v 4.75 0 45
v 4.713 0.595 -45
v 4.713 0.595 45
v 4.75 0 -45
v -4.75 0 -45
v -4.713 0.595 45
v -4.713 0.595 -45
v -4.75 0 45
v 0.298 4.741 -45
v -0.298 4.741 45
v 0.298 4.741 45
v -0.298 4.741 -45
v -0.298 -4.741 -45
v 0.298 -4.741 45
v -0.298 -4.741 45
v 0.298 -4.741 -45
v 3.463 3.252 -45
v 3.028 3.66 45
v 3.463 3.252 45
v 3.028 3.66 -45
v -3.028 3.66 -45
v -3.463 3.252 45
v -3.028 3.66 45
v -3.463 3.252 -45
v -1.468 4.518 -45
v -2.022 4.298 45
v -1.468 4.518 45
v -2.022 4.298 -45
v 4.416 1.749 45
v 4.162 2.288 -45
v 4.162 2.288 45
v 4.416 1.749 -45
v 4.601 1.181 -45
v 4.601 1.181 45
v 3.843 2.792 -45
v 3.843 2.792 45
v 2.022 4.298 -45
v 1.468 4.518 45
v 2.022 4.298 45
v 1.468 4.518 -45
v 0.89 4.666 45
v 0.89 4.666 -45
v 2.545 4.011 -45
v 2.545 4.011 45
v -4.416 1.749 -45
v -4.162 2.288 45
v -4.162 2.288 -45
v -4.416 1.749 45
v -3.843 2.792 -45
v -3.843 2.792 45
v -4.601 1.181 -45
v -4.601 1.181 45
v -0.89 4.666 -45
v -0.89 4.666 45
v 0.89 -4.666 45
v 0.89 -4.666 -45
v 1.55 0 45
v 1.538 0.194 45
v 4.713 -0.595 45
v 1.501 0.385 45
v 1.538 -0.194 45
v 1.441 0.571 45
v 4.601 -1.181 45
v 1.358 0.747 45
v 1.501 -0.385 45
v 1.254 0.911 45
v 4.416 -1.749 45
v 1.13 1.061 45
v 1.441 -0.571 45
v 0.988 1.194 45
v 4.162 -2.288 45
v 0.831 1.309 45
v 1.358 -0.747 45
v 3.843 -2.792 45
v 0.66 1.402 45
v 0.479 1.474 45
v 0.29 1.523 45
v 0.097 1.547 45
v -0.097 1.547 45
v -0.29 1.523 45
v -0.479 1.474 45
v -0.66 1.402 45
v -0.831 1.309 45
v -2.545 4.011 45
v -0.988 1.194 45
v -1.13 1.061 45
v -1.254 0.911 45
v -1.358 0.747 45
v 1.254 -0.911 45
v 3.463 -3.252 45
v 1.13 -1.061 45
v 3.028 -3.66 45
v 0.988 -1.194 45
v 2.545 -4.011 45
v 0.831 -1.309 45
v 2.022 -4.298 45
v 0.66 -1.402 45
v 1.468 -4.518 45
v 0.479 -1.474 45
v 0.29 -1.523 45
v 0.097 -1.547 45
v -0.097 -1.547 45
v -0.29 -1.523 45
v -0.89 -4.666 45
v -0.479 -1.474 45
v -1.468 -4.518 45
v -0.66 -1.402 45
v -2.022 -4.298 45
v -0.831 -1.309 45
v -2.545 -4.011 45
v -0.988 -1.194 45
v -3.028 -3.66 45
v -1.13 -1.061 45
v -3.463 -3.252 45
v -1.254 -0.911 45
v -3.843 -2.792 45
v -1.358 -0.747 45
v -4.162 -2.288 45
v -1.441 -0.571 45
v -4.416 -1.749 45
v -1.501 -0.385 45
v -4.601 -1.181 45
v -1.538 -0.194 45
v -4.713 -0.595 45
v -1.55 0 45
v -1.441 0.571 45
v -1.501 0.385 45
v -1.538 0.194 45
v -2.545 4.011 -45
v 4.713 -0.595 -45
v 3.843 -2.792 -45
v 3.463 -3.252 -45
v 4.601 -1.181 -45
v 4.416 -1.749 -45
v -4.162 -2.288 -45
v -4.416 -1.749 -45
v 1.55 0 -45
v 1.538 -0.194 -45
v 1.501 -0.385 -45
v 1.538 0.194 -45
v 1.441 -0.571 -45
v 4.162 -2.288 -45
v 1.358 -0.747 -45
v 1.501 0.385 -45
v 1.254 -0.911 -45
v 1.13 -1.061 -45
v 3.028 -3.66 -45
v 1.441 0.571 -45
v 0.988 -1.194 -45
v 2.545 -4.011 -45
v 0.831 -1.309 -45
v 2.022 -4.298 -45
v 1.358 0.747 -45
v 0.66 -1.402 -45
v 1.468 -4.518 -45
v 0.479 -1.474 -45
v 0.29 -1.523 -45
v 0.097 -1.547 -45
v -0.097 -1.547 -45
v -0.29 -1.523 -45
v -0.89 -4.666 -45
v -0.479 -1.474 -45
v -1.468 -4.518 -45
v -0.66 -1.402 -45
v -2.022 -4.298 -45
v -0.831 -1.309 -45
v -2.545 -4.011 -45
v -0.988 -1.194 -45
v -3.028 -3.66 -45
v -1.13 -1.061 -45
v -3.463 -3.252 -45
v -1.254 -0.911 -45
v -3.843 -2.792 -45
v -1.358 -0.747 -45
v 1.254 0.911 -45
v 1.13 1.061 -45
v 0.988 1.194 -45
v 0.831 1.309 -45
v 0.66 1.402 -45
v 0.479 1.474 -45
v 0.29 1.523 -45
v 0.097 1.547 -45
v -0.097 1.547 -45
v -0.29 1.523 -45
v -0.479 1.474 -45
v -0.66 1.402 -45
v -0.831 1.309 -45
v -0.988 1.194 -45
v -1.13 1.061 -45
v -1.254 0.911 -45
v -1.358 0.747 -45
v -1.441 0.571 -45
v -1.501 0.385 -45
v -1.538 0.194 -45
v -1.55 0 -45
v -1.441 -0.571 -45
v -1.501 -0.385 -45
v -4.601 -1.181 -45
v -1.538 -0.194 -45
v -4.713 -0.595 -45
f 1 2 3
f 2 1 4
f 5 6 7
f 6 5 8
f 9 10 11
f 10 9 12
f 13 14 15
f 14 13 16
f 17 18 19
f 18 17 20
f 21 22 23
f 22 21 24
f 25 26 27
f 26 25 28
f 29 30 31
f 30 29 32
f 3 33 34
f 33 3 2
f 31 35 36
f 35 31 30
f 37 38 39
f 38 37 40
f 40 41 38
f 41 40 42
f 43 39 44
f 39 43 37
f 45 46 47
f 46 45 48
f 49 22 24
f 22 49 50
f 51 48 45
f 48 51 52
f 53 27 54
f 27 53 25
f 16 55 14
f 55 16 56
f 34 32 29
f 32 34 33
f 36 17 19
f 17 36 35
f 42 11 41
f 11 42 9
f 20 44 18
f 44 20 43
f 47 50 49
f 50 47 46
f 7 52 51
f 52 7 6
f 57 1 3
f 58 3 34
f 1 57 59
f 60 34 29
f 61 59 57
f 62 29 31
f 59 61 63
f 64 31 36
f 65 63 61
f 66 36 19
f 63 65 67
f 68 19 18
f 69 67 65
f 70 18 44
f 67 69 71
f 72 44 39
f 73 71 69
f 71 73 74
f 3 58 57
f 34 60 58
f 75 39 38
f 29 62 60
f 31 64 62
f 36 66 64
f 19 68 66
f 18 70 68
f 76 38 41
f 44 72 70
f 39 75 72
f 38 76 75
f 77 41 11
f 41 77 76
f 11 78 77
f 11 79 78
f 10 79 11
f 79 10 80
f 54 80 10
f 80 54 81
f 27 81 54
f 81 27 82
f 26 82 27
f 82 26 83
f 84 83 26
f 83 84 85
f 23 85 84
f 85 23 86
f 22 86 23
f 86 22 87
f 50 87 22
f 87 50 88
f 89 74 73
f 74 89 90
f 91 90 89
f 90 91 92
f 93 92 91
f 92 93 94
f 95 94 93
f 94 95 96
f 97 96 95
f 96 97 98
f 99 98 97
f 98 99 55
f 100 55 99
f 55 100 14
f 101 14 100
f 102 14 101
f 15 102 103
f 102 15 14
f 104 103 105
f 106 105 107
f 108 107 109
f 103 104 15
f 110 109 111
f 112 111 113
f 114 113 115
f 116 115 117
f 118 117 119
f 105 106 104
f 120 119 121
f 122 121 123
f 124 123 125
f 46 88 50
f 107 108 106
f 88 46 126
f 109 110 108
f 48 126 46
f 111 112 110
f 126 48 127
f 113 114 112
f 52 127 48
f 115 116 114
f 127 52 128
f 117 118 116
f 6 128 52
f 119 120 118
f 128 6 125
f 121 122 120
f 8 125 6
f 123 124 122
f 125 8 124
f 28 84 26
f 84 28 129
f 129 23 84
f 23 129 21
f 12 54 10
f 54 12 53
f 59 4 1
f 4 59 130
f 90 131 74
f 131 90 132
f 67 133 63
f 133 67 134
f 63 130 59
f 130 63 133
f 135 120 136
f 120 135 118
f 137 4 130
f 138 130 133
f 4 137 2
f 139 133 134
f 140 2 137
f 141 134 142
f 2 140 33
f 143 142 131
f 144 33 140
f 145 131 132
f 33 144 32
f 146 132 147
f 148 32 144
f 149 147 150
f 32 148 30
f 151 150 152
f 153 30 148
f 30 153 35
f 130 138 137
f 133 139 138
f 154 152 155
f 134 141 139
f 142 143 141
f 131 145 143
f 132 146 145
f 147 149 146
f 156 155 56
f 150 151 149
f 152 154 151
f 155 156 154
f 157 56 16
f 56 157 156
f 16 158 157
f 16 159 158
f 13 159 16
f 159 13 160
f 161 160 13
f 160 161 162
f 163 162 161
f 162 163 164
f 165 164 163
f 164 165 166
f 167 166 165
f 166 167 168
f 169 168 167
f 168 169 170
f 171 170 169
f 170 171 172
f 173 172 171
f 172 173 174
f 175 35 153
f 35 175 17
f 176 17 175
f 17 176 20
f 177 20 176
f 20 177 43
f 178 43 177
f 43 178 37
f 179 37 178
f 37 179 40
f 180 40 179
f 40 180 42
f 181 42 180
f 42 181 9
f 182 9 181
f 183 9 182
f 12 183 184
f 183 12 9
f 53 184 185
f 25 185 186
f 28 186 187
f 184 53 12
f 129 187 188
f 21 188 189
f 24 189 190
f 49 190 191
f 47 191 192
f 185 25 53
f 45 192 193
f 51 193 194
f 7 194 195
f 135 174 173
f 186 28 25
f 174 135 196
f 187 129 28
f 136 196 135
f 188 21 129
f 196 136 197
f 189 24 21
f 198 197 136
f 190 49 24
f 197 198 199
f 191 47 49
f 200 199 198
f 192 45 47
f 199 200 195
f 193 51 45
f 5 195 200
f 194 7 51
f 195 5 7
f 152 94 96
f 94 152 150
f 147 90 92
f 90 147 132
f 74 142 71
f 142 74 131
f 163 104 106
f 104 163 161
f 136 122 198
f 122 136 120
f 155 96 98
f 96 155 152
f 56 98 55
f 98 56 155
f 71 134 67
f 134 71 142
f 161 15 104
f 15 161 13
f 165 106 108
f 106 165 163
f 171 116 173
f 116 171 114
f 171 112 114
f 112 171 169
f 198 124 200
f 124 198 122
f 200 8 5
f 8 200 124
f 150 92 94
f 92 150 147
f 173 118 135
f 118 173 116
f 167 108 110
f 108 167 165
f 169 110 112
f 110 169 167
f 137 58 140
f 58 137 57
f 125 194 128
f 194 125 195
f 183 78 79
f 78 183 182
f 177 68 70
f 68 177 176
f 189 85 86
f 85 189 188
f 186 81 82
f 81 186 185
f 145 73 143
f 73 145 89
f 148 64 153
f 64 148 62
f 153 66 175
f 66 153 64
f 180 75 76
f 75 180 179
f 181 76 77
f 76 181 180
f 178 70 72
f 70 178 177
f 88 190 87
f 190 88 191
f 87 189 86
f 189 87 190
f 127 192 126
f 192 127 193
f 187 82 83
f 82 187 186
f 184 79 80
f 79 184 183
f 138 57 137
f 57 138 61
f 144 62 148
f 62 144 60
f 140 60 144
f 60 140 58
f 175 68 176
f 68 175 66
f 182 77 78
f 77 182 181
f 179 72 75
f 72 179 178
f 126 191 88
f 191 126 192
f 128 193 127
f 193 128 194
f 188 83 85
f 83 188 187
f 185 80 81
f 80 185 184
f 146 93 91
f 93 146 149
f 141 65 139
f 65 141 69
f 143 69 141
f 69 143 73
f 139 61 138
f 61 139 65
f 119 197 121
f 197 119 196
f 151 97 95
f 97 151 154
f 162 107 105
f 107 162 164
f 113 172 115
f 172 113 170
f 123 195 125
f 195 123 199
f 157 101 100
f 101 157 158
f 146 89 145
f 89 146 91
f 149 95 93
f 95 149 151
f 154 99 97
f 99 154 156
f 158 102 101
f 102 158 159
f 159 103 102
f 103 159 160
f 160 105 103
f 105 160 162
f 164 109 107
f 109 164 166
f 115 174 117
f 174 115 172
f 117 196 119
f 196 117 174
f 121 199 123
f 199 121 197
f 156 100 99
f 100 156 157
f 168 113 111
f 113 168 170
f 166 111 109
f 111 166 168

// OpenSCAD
$fn = 50;


difference() {
	union() {
		translate(v = [0, 0, -45.0000000000]) {
			cylinder(h = 90, r = 4.7500000000);
		}
	}
	union() {
		translate(v = [0, 0, -100.0000000000]) {
			cylinder(h = 200, r = 1.5500000000);
		}
	}
}
